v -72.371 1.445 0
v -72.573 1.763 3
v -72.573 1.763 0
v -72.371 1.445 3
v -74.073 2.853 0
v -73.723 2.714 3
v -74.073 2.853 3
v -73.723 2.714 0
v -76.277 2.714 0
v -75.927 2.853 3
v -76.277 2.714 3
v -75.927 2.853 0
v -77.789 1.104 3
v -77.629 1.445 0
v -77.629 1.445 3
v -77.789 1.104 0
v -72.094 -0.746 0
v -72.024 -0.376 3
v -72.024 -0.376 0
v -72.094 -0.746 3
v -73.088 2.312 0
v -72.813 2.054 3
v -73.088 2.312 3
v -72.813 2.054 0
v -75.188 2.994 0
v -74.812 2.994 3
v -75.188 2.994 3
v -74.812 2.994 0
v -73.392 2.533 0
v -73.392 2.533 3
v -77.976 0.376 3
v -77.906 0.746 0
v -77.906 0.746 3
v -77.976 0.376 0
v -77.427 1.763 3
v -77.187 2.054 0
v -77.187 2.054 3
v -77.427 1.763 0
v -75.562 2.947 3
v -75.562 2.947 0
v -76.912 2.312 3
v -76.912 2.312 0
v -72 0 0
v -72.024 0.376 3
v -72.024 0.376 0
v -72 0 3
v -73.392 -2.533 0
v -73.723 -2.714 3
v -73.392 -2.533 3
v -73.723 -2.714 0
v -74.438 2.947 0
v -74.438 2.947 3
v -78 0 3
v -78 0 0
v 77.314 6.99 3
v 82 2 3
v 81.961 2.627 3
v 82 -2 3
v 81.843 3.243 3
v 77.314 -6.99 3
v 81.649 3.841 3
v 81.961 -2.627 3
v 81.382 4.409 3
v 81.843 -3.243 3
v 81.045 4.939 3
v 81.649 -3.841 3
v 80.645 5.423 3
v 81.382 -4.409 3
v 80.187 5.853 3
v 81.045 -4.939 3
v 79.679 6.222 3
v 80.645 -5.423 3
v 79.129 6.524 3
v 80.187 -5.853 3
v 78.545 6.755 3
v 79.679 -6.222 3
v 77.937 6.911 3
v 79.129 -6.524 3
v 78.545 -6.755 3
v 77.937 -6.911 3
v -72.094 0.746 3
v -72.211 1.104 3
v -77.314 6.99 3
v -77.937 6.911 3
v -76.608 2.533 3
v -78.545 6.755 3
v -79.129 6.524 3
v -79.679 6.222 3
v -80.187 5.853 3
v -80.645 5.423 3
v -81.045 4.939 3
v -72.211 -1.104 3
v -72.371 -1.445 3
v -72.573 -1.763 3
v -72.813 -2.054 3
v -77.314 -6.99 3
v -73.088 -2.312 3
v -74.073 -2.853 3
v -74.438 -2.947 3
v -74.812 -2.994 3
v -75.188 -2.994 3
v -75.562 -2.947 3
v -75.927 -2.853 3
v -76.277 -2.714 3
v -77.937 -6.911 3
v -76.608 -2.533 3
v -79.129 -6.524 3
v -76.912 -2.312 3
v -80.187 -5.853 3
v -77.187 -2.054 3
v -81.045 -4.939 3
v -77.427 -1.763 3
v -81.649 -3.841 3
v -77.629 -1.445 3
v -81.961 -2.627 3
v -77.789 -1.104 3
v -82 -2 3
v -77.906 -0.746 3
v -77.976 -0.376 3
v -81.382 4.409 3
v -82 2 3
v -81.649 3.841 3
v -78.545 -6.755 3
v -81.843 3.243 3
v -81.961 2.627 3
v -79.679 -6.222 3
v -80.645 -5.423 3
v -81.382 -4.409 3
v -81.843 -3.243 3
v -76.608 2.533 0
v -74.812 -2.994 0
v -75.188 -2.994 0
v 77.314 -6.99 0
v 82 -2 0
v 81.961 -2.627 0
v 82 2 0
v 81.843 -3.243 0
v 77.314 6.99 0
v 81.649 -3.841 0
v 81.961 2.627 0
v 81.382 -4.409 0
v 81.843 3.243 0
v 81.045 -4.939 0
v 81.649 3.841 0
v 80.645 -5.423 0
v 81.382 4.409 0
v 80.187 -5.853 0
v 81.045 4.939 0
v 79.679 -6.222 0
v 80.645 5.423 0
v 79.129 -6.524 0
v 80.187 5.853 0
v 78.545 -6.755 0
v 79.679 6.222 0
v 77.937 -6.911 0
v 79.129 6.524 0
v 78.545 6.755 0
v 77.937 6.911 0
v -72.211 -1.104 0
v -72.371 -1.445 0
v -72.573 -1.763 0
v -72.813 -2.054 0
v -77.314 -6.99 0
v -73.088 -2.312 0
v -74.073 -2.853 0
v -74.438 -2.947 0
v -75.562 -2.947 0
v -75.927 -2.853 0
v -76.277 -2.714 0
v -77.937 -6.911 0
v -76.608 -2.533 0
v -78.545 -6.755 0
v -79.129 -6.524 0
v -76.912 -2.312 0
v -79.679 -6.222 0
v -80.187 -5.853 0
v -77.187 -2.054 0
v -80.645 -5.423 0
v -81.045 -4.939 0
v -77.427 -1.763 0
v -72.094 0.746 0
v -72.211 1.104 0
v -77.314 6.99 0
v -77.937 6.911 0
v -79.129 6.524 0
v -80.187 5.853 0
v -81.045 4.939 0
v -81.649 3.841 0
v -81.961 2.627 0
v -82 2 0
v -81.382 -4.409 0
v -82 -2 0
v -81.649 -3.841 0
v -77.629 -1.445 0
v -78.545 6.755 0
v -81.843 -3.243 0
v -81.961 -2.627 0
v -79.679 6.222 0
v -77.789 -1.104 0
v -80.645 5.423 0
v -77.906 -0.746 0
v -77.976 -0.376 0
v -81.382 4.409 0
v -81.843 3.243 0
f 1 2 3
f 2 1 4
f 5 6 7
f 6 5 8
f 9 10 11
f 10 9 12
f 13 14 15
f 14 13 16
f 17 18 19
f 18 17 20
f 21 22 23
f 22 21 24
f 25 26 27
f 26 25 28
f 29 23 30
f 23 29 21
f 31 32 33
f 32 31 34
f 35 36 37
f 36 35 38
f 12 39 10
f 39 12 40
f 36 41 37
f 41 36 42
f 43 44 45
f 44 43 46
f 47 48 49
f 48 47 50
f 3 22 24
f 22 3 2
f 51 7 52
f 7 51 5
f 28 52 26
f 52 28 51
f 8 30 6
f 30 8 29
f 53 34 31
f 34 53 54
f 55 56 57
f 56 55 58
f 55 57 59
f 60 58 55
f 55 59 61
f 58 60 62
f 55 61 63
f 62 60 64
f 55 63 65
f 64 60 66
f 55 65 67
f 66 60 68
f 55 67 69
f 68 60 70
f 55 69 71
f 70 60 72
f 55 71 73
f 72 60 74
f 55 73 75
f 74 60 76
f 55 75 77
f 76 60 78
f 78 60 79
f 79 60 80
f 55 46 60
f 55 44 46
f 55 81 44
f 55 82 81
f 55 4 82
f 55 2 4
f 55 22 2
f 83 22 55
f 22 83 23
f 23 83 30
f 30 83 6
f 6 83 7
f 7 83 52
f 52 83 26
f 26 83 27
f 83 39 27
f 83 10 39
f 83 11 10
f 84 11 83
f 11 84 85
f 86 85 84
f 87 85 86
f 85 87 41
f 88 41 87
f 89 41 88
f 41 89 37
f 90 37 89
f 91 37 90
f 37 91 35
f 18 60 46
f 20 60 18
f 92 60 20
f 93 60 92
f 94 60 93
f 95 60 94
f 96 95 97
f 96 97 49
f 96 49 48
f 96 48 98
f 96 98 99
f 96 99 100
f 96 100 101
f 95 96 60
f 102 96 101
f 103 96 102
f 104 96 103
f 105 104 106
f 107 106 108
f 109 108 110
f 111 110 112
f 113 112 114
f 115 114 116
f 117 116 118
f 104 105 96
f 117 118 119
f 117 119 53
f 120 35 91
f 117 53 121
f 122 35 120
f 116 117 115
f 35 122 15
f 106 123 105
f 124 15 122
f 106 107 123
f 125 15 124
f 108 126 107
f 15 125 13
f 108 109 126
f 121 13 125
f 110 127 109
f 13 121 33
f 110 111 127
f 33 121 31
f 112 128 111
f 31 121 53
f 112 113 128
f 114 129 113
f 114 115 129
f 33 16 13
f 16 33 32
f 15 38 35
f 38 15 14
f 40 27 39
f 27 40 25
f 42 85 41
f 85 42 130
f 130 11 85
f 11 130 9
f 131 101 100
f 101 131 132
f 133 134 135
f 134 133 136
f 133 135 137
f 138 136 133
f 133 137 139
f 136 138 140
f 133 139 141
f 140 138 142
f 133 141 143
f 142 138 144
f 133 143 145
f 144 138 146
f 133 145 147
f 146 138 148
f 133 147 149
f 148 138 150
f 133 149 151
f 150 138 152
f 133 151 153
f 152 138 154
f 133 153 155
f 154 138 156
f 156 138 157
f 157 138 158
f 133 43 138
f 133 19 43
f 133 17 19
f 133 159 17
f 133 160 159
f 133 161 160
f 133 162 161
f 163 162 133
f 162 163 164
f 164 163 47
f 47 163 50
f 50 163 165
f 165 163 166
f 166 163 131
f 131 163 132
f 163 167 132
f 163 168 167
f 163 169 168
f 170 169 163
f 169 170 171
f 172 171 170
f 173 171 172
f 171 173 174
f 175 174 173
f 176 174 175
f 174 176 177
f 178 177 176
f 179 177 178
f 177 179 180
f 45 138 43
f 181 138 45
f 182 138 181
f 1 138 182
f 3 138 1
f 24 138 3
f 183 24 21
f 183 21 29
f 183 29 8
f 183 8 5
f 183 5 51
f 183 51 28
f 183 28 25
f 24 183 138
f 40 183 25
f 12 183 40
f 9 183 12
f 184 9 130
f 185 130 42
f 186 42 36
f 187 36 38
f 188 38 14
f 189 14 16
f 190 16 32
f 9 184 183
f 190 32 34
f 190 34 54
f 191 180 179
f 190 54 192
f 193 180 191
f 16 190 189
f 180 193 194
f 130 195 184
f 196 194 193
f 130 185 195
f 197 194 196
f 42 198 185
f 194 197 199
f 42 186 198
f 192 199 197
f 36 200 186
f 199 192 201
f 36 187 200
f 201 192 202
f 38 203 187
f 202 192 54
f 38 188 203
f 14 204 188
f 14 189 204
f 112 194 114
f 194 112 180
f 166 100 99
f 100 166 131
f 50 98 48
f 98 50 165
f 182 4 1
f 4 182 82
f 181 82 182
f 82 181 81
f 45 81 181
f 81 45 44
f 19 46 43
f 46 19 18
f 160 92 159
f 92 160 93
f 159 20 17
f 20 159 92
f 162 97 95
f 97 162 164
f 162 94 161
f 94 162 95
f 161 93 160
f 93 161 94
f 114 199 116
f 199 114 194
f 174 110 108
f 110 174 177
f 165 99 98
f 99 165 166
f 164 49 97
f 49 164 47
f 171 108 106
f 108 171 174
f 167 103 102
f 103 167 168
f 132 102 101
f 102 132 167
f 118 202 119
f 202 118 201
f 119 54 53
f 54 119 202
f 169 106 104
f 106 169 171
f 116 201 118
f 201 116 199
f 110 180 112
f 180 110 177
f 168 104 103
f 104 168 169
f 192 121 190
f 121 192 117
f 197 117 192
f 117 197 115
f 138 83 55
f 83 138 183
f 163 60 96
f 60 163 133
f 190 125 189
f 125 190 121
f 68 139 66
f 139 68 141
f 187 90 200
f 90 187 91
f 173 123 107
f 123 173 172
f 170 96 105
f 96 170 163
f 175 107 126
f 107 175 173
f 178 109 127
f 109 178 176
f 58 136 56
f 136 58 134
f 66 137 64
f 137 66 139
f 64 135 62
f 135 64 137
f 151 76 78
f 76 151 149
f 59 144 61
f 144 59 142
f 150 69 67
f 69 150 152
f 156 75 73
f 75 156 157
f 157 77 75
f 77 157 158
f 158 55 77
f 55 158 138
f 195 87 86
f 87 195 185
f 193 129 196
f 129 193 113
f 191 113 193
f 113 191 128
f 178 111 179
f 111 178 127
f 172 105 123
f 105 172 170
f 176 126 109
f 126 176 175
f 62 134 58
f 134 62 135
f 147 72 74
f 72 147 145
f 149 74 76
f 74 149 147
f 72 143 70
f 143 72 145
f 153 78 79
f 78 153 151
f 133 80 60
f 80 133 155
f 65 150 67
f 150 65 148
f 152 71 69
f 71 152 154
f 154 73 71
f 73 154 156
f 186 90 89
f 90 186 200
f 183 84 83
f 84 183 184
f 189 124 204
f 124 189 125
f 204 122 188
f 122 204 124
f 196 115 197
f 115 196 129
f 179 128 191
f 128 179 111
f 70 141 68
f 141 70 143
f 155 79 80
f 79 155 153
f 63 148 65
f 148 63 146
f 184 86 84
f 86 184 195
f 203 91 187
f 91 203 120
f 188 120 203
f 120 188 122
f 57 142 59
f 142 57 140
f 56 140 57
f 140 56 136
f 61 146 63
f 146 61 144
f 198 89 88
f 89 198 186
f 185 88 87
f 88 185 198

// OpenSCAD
$fn = 50;


difference() {
	union() {
		hull() {
			translate(v = [-77.0000000000, 2.0000000000, 0]) {
				cylinder(h = 3, r = 5);
			}
			translate(v = [77.0000000000, 2.0000000000, 0]) {
				cylinder(h = 3, r = 5);
			}
			translate(v = [-77.0000000000, -2.0000000000, 0]) {
				cylinder(h = 3, r = 5);
			}
			translate(v = [77.0000000000, -2.0000000000, 0]) {
				cylinder(h = 3, r = 5);
			}
		}
	}
	union() {
		translate(v = [-75.0000000000, 0.0000000000, 0]) {
			cylinder(h = 3, r = 3.0000000000);
		}
		translate(v = [-75.0000000000, 0.0000000000, 0]) {
			cylinder(h = 3, r = 1.5000000000);
		}
		translate(v = [-75.0000000000, 0.0000000000, 0]) {
			cylinder(h = 3, r = 1.5000000000);
		}
		translate(v = [-75.0000000000, 0.0000000000, 0]) {
			cylinder(h = 3, r = 1.5000000000);
		}
	}
}
